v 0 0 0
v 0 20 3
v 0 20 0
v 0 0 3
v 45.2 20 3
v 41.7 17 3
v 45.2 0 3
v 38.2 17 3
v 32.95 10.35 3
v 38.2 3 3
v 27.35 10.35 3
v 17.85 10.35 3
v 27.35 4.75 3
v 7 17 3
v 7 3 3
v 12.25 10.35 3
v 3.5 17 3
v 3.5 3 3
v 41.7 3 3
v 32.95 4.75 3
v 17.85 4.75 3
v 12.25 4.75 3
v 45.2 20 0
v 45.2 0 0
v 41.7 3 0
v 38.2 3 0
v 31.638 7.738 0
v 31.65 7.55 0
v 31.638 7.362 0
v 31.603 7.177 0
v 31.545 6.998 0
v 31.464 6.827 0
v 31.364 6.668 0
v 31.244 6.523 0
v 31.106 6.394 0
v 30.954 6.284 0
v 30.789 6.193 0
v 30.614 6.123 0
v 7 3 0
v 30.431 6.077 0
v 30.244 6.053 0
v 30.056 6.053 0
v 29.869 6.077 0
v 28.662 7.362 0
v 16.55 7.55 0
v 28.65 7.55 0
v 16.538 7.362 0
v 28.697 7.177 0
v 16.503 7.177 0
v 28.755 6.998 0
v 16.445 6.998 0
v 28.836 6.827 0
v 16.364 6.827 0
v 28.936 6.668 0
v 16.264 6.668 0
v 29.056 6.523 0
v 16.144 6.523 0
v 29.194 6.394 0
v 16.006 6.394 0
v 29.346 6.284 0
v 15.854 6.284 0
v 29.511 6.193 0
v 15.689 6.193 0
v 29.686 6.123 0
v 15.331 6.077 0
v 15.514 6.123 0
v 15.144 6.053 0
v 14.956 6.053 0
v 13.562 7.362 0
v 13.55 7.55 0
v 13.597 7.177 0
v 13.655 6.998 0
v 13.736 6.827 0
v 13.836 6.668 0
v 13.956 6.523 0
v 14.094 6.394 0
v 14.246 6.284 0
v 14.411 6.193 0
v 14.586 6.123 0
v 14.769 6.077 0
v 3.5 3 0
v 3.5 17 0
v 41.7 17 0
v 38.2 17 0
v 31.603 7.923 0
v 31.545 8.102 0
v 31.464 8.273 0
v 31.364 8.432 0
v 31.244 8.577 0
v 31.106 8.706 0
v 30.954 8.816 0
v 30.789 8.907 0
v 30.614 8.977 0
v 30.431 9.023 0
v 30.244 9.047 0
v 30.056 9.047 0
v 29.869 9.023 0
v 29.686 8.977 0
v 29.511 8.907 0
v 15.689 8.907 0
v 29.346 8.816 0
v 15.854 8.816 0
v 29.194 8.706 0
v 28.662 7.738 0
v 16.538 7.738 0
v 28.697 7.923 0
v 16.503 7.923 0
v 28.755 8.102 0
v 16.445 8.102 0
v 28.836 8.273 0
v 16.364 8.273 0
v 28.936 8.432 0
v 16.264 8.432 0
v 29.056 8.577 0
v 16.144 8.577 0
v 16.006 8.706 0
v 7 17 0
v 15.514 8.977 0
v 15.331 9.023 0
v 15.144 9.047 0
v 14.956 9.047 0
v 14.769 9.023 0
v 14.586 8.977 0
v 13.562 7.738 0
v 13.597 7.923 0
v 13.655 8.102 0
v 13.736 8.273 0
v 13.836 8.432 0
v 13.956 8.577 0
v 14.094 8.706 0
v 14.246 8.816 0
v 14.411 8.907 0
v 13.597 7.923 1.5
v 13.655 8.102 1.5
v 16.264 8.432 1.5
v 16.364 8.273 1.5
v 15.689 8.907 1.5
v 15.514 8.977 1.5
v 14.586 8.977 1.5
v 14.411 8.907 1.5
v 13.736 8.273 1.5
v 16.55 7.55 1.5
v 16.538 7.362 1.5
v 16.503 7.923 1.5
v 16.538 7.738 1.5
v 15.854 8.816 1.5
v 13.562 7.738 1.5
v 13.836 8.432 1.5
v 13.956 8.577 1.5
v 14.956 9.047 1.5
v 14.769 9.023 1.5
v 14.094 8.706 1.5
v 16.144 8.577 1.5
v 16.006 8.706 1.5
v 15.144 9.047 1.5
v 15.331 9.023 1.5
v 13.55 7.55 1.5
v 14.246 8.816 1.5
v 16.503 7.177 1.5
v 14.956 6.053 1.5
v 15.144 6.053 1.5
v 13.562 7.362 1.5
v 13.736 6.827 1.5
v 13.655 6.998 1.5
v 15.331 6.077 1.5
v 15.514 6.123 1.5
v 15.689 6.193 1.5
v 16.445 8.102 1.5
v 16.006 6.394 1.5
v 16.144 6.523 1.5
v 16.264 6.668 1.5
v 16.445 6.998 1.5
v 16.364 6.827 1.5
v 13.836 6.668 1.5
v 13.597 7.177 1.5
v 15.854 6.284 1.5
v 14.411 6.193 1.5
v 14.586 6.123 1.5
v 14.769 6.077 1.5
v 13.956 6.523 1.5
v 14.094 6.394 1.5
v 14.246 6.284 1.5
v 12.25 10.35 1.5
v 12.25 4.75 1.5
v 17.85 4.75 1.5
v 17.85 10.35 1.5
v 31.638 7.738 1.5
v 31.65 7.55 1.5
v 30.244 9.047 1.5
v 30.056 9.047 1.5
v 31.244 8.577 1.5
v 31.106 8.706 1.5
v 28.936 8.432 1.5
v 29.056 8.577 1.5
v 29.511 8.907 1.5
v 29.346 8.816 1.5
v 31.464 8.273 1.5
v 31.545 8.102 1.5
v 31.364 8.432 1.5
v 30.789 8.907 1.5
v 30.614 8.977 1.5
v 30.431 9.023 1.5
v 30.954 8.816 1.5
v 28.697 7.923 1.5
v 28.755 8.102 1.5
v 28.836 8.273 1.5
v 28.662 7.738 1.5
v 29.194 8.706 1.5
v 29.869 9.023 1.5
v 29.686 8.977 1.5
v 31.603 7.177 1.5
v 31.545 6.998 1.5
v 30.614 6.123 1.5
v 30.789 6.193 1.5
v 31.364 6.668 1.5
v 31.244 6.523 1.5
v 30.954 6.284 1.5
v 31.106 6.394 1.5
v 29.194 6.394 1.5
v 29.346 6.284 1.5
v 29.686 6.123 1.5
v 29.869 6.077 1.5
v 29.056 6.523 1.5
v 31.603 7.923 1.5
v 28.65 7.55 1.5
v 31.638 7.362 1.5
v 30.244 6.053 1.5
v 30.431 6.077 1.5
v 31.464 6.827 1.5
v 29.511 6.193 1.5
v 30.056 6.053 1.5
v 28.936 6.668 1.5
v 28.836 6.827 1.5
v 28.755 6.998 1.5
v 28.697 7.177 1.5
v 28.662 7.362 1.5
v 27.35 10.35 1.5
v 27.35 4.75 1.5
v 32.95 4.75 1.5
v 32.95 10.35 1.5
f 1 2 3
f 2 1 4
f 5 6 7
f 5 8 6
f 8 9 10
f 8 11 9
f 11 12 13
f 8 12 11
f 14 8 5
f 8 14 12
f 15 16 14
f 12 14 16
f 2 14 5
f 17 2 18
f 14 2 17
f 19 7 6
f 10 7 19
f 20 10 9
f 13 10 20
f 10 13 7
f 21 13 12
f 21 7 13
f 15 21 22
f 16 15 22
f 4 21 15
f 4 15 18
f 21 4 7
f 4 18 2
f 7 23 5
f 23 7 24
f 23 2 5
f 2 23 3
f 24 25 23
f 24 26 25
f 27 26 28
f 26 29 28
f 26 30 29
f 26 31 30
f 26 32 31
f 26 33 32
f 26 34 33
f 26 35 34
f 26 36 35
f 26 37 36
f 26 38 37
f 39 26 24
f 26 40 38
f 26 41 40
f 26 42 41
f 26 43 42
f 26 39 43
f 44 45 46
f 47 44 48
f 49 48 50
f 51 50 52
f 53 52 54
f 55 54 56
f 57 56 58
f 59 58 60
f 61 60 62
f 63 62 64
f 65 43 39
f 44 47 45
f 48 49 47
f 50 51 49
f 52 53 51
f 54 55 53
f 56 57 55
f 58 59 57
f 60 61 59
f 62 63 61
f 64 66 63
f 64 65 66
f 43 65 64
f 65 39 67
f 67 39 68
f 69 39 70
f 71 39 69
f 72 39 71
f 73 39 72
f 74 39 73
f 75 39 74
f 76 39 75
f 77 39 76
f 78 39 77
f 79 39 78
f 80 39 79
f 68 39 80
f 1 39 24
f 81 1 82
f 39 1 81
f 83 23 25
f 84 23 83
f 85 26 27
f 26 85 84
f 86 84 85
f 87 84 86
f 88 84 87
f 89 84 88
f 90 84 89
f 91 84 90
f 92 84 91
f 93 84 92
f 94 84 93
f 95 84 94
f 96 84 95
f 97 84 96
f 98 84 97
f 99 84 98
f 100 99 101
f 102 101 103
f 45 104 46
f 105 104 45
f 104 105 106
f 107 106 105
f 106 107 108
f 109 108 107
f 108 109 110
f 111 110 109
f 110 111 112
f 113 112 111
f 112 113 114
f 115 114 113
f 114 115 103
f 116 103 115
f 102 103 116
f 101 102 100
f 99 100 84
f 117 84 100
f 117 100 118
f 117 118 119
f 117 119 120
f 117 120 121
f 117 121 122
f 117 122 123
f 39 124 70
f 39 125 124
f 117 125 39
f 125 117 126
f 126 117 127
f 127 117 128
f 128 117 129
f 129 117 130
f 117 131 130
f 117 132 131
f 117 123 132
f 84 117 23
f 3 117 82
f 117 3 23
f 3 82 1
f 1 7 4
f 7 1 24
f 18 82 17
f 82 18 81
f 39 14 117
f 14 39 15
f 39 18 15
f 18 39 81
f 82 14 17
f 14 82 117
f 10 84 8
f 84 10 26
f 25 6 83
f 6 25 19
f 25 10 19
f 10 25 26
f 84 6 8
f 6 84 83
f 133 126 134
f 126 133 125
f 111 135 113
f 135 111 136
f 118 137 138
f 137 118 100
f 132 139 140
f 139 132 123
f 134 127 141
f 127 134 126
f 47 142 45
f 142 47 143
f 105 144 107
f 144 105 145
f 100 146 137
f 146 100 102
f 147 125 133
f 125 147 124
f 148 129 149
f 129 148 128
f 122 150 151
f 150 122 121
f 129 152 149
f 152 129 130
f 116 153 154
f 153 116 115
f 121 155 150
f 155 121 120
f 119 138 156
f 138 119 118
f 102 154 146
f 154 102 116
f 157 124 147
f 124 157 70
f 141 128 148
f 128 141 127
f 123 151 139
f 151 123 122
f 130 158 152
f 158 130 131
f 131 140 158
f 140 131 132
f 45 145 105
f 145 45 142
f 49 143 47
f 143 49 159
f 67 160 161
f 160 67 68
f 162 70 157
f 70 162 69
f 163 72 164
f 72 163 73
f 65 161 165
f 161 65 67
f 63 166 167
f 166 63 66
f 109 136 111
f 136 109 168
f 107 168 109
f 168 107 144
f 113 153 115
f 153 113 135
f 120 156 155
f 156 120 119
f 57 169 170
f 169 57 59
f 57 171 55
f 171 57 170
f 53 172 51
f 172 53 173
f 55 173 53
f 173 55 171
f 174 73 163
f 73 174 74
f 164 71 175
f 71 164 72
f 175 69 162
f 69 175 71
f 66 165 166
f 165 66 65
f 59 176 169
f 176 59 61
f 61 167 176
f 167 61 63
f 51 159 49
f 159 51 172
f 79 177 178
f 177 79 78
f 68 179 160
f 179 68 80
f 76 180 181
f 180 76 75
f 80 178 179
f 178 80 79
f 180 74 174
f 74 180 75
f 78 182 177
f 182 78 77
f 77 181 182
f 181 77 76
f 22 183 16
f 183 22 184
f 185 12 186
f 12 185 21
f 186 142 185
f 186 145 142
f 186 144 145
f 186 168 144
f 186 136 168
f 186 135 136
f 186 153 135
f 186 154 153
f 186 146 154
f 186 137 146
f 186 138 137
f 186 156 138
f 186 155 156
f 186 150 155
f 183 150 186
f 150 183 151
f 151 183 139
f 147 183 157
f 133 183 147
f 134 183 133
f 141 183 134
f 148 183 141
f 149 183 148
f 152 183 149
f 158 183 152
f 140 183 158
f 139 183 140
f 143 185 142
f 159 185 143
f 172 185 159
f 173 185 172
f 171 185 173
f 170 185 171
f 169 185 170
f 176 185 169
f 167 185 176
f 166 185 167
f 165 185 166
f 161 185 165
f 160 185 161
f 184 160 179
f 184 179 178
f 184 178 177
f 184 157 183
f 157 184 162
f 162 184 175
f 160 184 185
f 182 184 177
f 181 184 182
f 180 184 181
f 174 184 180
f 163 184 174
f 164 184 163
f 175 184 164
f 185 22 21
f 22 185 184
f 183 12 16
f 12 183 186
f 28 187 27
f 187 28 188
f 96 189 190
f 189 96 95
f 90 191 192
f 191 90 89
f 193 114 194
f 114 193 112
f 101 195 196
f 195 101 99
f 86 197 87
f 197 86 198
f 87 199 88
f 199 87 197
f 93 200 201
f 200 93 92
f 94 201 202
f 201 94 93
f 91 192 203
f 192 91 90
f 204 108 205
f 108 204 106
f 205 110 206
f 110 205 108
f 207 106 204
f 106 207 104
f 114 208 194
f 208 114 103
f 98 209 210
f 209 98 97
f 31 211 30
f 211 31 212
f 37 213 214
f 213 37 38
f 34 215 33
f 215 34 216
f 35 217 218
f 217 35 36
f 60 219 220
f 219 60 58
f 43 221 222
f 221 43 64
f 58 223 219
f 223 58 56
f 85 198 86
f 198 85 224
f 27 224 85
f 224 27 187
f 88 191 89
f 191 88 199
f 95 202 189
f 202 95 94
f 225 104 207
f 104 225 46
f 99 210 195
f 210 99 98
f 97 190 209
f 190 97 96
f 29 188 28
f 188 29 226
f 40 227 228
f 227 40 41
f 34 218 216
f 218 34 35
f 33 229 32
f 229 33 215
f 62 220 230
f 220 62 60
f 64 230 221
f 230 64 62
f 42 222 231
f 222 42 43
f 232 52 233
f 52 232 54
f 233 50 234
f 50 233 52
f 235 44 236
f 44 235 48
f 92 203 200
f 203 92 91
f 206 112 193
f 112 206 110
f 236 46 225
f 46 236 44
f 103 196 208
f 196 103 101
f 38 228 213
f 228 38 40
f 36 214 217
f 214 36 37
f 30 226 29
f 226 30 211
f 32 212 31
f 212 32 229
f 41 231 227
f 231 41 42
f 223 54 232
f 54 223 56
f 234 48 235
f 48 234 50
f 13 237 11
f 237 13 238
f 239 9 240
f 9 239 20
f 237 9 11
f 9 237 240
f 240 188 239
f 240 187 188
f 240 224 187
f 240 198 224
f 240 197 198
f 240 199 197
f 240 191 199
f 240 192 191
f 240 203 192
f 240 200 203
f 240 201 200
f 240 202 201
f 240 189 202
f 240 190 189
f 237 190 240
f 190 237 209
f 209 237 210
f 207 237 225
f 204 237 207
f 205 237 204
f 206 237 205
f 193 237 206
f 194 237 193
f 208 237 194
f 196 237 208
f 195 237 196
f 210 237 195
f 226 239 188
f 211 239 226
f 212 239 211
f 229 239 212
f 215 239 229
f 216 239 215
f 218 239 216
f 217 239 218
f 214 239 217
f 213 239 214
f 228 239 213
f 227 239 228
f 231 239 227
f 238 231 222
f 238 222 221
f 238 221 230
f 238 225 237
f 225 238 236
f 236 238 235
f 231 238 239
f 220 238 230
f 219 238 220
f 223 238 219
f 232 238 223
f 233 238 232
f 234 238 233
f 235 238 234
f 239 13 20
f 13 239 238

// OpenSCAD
$fn=50;
width = 40;
depth = 20; 
height = 3;
slotsize = 3.5;
fixheight = 20;
margin = 3;
nutslot_width = 5.6;
sensor_board_width = 22;
sensor_board_height = 11+5.2; 
total_width = sensor_board_width + 4*margin + 2*nutslot_width;
magnet_diameter = 6;
mountBarWidth = 0.5*total_width-0.5*magnet_diameter-3*slotsize;
nutsize = 3;
nutslot_mountbar_offset = 0.5*(mountBarWidth-nutslot_width);

difference() {
    slottedPlate(total_width,depth, height, slotsize);

    translate([3*slotsize+0.5*mountBarWidth,height+0.5*mountBarWidth]) {
        cylinder(h=height*2, d=nutsize,center=true);
    }
    translate([3*slotsize+nutslot_mountbar_offset,height+nutslot_mountbar_offset,0.5*height]) {
        cube([nutslot_width,nutslot_width,0.5*height]);
    }
    translate([total_width*0.5+0.5*magnet_diameter+0.5*mountBarWidth,height+0.5*mountBarWidth]) {
        cylinder(h=height*2, d=nutsize,center=true);
    }
    translate([total_width*0.5+0.5*magnet_diameter+nutslot_mountbar_offset,height+nutslot_mountbar_offset,0.5*height]) {
        cube([nutslot_width,nutslot_width,0.5*height]);
    }
}

module slottedPlate(plateWidth, plateDepth, plateHeight, slotWidth) {
    difference() {
        cube([plateWidth,plateDepth,plateHeight]);
        translate([slotWidth, plateHeight, 0]) {
            cube([slotWidth,plateDepth-2*plateHeight,plateHeight+1]);
        }
        translate([plateWidth - 2*slotWidth, plateHeight,0]) {
            cube([slotWidth,plateDepth-2*plateHeight,plateHeight+1]);
        }
    }
}

module nutslot() {
	translate([(0.5 * nutslot_width) - (0.5 * slotsize), 0, 0]) {
		cube([slotsize, 0.5*slotsize, fixheight - slotsize]);
	}
	translate([0, 0.5*slotsize, 0]) {
		cube([nutslot_width, 0.5*slotsize, fixheight - slotsize]);
	}
}
